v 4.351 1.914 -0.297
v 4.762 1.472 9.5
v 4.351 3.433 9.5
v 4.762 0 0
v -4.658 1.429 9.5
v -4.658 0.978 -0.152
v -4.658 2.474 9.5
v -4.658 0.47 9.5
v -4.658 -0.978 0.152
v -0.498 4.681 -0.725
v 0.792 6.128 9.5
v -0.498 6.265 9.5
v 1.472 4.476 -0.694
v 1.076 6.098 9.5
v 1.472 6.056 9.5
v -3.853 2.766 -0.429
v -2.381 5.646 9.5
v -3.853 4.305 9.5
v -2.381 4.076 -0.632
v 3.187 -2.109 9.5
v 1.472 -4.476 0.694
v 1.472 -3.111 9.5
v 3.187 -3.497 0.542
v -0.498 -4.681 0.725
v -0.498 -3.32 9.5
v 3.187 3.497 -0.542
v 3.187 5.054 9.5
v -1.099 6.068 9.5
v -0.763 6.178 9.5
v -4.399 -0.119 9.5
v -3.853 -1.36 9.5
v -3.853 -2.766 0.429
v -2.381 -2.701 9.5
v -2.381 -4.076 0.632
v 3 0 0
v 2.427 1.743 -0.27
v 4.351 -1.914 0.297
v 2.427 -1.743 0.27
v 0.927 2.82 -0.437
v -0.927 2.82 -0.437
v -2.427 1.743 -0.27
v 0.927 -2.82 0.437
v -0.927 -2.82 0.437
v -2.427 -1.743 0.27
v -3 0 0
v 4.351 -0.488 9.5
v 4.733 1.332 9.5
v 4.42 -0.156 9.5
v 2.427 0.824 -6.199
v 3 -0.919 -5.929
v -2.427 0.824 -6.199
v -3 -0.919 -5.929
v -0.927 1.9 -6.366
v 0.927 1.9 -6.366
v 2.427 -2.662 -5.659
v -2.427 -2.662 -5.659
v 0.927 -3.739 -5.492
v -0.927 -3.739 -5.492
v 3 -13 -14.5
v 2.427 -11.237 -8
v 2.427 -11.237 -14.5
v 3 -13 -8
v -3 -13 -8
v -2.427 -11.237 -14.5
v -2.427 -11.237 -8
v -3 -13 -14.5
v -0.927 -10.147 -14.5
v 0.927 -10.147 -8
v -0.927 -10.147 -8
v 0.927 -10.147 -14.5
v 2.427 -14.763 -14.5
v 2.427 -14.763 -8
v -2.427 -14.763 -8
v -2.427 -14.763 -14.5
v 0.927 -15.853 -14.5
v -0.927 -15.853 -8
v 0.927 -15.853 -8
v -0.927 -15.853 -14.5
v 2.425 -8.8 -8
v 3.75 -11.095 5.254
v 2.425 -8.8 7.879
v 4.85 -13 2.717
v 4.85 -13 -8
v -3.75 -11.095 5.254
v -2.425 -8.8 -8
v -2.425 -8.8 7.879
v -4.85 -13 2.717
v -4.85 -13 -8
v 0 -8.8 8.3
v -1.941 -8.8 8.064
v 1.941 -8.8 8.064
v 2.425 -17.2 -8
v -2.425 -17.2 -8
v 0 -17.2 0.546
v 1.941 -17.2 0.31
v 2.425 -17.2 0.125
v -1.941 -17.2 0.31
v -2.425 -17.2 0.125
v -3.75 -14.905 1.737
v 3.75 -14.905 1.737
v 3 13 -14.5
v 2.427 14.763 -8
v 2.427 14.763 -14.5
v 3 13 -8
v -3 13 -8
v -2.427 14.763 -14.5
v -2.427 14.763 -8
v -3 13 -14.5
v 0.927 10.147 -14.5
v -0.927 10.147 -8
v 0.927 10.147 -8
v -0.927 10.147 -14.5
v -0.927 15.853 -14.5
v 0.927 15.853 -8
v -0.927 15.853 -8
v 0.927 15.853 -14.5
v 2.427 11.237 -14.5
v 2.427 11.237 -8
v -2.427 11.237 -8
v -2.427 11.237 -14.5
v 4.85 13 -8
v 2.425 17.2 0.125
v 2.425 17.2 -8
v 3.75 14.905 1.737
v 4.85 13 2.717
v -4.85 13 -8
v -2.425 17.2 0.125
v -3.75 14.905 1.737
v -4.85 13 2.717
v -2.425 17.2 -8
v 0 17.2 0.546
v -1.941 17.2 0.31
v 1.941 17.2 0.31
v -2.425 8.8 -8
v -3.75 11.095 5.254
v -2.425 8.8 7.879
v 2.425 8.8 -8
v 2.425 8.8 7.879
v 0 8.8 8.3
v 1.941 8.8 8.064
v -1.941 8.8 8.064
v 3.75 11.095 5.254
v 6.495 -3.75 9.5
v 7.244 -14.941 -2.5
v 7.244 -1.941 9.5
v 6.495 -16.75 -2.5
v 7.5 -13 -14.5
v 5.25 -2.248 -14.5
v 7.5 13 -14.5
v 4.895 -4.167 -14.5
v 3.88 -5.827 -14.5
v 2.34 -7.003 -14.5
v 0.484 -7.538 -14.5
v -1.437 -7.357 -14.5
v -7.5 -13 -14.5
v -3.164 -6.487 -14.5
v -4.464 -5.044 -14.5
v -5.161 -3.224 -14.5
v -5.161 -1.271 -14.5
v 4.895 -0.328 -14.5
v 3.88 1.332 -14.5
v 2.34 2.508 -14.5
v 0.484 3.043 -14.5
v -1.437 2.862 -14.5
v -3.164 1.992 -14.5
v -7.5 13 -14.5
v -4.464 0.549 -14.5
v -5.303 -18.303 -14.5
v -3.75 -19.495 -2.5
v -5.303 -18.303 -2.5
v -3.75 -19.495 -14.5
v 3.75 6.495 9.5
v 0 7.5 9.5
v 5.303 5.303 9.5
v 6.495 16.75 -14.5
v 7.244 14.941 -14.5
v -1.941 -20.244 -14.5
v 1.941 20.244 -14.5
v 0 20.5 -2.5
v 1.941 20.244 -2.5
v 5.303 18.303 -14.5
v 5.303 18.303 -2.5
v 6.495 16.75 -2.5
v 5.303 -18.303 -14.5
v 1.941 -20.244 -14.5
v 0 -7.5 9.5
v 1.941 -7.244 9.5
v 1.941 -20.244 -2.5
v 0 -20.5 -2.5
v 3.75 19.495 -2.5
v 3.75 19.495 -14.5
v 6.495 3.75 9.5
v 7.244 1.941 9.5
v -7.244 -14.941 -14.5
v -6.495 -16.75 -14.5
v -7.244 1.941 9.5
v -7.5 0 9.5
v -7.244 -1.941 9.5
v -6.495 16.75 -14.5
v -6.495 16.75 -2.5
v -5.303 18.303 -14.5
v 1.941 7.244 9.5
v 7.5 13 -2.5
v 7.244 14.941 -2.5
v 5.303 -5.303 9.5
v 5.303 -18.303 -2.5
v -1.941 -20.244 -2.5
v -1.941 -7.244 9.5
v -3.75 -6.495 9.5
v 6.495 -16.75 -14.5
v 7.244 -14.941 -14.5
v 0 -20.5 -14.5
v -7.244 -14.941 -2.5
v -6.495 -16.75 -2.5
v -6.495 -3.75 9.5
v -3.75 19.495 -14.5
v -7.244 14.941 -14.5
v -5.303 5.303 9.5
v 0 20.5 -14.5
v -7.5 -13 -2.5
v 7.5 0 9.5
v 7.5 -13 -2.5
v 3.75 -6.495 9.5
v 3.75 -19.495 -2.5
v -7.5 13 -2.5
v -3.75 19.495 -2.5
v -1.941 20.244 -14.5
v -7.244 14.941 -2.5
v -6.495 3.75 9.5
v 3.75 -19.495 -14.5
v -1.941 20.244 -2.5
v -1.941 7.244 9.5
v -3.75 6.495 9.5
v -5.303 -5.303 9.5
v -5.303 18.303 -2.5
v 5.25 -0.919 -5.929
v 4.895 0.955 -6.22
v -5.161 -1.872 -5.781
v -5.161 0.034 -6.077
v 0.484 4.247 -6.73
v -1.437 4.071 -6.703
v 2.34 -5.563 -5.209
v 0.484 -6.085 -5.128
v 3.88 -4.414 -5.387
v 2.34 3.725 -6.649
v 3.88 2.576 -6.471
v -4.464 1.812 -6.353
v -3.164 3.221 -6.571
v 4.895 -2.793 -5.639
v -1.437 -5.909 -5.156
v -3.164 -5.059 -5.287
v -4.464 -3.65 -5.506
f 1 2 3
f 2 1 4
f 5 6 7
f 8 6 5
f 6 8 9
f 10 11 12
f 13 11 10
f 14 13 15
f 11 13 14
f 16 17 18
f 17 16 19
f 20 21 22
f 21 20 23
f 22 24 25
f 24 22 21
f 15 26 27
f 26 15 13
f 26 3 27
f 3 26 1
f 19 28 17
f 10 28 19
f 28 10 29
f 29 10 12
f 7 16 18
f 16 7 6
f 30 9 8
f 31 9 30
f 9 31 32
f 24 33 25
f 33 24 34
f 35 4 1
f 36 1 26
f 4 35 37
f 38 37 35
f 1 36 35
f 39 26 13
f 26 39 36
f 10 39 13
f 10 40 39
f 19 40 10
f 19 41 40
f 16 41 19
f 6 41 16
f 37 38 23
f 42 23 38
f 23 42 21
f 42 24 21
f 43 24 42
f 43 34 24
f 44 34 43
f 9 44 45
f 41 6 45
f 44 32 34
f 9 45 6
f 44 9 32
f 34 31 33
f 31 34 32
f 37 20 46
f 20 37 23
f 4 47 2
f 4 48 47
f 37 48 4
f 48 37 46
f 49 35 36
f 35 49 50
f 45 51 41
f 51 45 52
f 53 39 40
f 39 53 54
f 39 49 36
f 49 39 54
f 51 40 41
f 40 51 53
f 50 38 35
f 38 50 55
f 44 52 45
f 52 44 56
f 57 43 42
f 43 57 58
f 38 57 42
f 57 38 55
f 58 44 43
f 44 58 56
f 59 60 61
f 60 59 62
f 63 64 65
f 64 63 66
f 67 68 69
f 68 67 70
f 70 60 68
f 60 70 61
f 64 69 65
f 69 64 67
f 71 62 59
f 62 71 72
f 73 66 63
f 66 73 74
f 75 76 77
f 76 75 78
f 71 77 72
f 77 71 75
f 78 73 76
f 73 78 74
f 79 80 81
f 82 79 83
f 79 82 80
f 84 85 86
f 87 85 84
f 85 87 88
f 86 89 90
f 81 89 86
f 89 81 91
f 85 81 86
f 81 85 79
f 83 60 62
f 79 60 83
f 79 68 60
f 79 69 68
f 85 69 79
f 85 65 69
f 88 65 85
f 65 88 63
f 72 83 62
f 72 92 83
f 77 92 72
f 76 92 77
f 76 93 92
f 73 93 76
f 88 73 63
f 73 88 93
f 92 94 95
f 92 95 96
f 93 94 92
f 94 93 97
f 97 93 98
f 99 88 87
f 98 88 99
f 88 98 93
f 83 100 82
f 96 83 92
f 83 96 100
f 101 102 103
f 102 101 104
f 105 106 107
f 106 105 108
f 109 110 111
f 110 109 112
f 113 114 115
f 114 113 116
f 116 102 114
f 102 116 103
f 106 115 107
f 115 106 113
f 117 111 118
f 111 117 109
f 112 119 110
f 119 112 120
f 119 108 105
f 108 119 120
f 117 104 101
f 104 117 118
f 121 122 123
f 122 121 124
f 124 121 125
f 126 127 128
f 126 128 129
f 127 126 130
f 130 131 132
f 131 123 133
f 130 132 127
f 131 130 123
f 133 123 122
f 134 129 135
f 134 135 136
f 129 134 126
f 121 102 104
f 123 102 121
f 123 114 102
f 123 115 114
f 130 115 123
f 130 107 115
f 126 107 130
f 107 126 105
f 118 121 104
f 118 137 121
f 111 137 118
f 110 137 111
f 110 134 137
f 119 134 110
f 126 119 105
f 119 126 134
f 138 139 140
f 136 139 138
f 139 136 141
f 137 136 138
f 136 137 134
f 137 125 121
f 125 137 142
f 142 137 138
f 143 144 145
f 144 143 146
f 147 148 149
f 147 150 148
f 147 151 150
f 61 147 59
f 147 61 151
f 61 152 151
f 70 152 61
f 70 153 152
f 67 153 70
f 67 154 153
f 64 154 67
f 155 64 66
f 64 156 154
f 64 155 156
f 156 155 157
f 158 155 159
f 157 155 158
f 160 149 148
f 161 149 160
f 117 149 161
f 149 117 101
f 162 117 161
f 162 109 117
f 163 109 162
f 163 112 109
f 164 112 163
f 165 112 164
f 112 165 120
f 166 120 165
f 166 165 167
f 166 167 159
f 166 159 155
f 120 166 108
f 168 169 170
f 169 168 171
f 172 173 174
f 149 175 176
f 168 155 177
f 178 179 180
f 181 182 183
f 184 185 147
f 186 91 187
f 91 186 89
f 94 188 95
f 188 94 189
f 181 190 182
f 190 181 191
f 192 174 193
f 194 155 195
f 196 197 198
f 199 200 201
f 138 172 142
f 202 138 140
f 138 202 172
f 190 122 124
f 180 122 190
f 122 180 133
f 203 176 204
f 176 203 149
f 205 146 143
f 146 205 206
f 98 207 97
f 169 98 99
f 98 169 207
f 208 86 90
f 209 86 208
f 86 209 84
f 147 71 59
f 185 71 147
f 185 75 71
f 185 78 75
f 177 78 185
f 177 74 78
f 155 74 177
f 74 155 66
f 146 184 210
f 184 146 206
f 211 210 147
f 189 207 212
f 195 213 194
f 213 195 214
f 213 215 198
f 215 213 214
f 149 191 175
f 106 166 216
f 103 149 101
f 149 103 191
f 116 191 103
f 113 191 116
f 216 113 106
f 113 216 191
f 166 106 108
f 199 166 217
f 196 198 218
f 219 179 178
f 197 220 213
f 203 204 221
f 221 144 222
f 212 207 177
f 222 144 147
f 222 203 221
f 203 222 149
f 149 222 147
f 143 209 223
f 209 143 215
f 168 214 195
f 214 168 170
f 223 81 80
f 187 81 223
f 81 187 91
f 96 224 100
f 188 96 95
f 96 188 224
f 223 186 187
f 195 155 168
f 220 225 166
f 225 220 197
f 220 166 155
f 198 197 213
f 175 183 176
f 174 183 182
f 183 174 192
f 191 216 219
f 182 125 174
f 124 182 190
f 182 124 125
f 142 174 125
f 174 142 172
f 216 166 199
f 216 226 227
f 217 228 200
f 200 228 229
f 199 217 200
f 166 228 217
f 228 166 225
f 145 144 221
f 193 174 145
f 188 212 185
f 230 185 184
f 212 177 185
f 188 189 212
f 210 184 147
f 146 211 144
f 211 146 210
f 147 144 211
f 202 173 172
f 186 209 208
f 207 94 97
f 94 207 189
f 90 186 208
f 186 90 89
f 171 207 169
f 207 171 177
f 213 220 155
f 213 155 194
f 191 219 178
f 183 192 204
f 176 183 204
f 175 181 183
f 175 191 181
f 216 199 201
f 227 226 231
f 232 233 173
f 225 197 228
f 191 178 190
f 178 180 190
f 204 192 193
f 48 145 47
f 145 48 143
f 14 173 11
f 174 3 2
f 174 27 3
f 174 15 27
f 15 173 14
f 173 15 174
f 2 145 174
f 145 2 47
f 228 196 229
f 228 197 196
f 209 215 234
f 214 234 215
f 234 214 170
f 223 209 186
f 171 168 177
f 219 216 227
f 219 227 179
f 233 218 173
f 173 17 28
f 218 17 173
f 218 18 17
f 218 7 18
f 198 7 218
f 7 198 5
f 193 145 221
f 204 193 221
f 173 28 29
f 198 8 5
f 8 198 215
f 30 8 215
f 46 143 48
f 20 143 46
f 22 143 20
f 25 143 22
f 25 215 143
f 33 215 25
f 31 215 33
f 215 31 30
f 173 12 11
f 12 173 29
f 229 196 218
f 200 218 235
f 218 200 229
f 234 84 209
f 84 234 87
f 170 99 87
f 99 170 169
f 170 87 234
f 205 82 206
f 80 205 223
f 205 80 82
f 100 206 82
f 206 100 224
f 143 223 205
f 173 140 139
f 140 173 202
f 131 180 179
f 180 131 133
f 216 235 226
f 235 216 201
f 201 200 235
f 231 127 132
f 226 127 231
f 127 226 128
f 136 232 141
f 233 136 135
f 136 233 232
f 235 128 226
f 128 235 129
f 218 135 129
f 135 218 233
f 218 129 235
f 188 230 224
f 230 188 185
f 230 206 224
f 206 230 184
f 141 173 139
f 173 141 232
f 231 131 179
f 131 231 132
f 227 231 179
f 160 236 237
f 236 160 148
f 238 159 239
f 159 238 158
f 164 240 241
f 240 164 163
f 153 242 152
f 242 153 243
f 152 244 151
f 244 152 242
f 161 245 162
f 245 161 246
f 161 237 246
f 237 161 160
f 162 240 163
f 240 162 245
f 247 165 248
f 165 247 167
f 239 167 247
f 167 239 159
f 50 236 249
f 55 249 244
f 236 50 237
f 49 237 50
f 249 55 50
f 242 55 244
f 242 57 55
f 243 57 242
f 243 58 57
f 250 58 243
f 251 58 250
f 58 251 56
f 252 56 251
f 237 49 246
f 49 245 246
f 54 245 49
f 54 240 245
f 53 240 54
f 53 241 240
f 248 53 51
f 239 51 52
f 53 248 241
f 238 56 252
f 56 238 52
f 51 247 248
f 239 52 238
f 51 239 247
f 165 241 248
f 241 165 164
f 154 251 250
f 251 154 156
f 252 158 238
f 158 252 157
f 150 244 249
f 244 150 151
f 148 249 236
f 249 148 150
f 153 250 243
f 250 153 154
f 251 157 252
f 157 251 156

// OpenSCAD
module daruma() {
    cylinder(d=0.375 * 25.4, h=25, center=false);
    cylinder(d=6, h=50, center=true);
}
len = 24;

fenderD = 622/2 + 40;
rake = 62; // 40;
forkLen = 400;
rakeOffsetAngle = 90 - atan(forkLen/rake);

module fender() {
	d = fenderD;
	r = 6;
	translate([0, 0, -17.5])
		rotate([rakeOffsetAngle,0,0])
			translate([0, 0, -d - r])
				rotate([0,90,0])
					rotate_extrude($fn=120)
						translate([ d, 0, 0]) square(size=[r, 60], center=true);;
}

rotate([-rakeOffsetAngle,0,0]) difference() {
    rotate([rakeOffsetAngle,0,0]) translate([0,0,-2.5]) hull() {
        cylinder(d=15, h=len, center=true);
        translate([0,-13,-len/2]) cylinder(d=15, h=len/2, center=false);
        translate([0,13,-len/2]) cylinder(d=15, h=len/2, center=false);
    }
    rotate([rakeOffsetAngle,0,0])
    for (ii=[-13:26:13]) {
        translate([0,ii,0]) {
            cylinder(d=6, h=100, center=true);
            translate([0,0,-len/2 + 4]) cylinder(d=8.4/cos(180/6), h=100, center=false, $fn=6);
        }
    }

    #daruma();
    // bolt head to daruma
    translate([0,0,-4 - len/2]) cylinder(d=10.5, h=10, center=false);
    fender();
    /*rotate([0,180,0]) cube([10, 310, 5.75*25.4]);
    #rotate([0,180,0]) cube([10, 310, 5.25*25.4]);*/
}
